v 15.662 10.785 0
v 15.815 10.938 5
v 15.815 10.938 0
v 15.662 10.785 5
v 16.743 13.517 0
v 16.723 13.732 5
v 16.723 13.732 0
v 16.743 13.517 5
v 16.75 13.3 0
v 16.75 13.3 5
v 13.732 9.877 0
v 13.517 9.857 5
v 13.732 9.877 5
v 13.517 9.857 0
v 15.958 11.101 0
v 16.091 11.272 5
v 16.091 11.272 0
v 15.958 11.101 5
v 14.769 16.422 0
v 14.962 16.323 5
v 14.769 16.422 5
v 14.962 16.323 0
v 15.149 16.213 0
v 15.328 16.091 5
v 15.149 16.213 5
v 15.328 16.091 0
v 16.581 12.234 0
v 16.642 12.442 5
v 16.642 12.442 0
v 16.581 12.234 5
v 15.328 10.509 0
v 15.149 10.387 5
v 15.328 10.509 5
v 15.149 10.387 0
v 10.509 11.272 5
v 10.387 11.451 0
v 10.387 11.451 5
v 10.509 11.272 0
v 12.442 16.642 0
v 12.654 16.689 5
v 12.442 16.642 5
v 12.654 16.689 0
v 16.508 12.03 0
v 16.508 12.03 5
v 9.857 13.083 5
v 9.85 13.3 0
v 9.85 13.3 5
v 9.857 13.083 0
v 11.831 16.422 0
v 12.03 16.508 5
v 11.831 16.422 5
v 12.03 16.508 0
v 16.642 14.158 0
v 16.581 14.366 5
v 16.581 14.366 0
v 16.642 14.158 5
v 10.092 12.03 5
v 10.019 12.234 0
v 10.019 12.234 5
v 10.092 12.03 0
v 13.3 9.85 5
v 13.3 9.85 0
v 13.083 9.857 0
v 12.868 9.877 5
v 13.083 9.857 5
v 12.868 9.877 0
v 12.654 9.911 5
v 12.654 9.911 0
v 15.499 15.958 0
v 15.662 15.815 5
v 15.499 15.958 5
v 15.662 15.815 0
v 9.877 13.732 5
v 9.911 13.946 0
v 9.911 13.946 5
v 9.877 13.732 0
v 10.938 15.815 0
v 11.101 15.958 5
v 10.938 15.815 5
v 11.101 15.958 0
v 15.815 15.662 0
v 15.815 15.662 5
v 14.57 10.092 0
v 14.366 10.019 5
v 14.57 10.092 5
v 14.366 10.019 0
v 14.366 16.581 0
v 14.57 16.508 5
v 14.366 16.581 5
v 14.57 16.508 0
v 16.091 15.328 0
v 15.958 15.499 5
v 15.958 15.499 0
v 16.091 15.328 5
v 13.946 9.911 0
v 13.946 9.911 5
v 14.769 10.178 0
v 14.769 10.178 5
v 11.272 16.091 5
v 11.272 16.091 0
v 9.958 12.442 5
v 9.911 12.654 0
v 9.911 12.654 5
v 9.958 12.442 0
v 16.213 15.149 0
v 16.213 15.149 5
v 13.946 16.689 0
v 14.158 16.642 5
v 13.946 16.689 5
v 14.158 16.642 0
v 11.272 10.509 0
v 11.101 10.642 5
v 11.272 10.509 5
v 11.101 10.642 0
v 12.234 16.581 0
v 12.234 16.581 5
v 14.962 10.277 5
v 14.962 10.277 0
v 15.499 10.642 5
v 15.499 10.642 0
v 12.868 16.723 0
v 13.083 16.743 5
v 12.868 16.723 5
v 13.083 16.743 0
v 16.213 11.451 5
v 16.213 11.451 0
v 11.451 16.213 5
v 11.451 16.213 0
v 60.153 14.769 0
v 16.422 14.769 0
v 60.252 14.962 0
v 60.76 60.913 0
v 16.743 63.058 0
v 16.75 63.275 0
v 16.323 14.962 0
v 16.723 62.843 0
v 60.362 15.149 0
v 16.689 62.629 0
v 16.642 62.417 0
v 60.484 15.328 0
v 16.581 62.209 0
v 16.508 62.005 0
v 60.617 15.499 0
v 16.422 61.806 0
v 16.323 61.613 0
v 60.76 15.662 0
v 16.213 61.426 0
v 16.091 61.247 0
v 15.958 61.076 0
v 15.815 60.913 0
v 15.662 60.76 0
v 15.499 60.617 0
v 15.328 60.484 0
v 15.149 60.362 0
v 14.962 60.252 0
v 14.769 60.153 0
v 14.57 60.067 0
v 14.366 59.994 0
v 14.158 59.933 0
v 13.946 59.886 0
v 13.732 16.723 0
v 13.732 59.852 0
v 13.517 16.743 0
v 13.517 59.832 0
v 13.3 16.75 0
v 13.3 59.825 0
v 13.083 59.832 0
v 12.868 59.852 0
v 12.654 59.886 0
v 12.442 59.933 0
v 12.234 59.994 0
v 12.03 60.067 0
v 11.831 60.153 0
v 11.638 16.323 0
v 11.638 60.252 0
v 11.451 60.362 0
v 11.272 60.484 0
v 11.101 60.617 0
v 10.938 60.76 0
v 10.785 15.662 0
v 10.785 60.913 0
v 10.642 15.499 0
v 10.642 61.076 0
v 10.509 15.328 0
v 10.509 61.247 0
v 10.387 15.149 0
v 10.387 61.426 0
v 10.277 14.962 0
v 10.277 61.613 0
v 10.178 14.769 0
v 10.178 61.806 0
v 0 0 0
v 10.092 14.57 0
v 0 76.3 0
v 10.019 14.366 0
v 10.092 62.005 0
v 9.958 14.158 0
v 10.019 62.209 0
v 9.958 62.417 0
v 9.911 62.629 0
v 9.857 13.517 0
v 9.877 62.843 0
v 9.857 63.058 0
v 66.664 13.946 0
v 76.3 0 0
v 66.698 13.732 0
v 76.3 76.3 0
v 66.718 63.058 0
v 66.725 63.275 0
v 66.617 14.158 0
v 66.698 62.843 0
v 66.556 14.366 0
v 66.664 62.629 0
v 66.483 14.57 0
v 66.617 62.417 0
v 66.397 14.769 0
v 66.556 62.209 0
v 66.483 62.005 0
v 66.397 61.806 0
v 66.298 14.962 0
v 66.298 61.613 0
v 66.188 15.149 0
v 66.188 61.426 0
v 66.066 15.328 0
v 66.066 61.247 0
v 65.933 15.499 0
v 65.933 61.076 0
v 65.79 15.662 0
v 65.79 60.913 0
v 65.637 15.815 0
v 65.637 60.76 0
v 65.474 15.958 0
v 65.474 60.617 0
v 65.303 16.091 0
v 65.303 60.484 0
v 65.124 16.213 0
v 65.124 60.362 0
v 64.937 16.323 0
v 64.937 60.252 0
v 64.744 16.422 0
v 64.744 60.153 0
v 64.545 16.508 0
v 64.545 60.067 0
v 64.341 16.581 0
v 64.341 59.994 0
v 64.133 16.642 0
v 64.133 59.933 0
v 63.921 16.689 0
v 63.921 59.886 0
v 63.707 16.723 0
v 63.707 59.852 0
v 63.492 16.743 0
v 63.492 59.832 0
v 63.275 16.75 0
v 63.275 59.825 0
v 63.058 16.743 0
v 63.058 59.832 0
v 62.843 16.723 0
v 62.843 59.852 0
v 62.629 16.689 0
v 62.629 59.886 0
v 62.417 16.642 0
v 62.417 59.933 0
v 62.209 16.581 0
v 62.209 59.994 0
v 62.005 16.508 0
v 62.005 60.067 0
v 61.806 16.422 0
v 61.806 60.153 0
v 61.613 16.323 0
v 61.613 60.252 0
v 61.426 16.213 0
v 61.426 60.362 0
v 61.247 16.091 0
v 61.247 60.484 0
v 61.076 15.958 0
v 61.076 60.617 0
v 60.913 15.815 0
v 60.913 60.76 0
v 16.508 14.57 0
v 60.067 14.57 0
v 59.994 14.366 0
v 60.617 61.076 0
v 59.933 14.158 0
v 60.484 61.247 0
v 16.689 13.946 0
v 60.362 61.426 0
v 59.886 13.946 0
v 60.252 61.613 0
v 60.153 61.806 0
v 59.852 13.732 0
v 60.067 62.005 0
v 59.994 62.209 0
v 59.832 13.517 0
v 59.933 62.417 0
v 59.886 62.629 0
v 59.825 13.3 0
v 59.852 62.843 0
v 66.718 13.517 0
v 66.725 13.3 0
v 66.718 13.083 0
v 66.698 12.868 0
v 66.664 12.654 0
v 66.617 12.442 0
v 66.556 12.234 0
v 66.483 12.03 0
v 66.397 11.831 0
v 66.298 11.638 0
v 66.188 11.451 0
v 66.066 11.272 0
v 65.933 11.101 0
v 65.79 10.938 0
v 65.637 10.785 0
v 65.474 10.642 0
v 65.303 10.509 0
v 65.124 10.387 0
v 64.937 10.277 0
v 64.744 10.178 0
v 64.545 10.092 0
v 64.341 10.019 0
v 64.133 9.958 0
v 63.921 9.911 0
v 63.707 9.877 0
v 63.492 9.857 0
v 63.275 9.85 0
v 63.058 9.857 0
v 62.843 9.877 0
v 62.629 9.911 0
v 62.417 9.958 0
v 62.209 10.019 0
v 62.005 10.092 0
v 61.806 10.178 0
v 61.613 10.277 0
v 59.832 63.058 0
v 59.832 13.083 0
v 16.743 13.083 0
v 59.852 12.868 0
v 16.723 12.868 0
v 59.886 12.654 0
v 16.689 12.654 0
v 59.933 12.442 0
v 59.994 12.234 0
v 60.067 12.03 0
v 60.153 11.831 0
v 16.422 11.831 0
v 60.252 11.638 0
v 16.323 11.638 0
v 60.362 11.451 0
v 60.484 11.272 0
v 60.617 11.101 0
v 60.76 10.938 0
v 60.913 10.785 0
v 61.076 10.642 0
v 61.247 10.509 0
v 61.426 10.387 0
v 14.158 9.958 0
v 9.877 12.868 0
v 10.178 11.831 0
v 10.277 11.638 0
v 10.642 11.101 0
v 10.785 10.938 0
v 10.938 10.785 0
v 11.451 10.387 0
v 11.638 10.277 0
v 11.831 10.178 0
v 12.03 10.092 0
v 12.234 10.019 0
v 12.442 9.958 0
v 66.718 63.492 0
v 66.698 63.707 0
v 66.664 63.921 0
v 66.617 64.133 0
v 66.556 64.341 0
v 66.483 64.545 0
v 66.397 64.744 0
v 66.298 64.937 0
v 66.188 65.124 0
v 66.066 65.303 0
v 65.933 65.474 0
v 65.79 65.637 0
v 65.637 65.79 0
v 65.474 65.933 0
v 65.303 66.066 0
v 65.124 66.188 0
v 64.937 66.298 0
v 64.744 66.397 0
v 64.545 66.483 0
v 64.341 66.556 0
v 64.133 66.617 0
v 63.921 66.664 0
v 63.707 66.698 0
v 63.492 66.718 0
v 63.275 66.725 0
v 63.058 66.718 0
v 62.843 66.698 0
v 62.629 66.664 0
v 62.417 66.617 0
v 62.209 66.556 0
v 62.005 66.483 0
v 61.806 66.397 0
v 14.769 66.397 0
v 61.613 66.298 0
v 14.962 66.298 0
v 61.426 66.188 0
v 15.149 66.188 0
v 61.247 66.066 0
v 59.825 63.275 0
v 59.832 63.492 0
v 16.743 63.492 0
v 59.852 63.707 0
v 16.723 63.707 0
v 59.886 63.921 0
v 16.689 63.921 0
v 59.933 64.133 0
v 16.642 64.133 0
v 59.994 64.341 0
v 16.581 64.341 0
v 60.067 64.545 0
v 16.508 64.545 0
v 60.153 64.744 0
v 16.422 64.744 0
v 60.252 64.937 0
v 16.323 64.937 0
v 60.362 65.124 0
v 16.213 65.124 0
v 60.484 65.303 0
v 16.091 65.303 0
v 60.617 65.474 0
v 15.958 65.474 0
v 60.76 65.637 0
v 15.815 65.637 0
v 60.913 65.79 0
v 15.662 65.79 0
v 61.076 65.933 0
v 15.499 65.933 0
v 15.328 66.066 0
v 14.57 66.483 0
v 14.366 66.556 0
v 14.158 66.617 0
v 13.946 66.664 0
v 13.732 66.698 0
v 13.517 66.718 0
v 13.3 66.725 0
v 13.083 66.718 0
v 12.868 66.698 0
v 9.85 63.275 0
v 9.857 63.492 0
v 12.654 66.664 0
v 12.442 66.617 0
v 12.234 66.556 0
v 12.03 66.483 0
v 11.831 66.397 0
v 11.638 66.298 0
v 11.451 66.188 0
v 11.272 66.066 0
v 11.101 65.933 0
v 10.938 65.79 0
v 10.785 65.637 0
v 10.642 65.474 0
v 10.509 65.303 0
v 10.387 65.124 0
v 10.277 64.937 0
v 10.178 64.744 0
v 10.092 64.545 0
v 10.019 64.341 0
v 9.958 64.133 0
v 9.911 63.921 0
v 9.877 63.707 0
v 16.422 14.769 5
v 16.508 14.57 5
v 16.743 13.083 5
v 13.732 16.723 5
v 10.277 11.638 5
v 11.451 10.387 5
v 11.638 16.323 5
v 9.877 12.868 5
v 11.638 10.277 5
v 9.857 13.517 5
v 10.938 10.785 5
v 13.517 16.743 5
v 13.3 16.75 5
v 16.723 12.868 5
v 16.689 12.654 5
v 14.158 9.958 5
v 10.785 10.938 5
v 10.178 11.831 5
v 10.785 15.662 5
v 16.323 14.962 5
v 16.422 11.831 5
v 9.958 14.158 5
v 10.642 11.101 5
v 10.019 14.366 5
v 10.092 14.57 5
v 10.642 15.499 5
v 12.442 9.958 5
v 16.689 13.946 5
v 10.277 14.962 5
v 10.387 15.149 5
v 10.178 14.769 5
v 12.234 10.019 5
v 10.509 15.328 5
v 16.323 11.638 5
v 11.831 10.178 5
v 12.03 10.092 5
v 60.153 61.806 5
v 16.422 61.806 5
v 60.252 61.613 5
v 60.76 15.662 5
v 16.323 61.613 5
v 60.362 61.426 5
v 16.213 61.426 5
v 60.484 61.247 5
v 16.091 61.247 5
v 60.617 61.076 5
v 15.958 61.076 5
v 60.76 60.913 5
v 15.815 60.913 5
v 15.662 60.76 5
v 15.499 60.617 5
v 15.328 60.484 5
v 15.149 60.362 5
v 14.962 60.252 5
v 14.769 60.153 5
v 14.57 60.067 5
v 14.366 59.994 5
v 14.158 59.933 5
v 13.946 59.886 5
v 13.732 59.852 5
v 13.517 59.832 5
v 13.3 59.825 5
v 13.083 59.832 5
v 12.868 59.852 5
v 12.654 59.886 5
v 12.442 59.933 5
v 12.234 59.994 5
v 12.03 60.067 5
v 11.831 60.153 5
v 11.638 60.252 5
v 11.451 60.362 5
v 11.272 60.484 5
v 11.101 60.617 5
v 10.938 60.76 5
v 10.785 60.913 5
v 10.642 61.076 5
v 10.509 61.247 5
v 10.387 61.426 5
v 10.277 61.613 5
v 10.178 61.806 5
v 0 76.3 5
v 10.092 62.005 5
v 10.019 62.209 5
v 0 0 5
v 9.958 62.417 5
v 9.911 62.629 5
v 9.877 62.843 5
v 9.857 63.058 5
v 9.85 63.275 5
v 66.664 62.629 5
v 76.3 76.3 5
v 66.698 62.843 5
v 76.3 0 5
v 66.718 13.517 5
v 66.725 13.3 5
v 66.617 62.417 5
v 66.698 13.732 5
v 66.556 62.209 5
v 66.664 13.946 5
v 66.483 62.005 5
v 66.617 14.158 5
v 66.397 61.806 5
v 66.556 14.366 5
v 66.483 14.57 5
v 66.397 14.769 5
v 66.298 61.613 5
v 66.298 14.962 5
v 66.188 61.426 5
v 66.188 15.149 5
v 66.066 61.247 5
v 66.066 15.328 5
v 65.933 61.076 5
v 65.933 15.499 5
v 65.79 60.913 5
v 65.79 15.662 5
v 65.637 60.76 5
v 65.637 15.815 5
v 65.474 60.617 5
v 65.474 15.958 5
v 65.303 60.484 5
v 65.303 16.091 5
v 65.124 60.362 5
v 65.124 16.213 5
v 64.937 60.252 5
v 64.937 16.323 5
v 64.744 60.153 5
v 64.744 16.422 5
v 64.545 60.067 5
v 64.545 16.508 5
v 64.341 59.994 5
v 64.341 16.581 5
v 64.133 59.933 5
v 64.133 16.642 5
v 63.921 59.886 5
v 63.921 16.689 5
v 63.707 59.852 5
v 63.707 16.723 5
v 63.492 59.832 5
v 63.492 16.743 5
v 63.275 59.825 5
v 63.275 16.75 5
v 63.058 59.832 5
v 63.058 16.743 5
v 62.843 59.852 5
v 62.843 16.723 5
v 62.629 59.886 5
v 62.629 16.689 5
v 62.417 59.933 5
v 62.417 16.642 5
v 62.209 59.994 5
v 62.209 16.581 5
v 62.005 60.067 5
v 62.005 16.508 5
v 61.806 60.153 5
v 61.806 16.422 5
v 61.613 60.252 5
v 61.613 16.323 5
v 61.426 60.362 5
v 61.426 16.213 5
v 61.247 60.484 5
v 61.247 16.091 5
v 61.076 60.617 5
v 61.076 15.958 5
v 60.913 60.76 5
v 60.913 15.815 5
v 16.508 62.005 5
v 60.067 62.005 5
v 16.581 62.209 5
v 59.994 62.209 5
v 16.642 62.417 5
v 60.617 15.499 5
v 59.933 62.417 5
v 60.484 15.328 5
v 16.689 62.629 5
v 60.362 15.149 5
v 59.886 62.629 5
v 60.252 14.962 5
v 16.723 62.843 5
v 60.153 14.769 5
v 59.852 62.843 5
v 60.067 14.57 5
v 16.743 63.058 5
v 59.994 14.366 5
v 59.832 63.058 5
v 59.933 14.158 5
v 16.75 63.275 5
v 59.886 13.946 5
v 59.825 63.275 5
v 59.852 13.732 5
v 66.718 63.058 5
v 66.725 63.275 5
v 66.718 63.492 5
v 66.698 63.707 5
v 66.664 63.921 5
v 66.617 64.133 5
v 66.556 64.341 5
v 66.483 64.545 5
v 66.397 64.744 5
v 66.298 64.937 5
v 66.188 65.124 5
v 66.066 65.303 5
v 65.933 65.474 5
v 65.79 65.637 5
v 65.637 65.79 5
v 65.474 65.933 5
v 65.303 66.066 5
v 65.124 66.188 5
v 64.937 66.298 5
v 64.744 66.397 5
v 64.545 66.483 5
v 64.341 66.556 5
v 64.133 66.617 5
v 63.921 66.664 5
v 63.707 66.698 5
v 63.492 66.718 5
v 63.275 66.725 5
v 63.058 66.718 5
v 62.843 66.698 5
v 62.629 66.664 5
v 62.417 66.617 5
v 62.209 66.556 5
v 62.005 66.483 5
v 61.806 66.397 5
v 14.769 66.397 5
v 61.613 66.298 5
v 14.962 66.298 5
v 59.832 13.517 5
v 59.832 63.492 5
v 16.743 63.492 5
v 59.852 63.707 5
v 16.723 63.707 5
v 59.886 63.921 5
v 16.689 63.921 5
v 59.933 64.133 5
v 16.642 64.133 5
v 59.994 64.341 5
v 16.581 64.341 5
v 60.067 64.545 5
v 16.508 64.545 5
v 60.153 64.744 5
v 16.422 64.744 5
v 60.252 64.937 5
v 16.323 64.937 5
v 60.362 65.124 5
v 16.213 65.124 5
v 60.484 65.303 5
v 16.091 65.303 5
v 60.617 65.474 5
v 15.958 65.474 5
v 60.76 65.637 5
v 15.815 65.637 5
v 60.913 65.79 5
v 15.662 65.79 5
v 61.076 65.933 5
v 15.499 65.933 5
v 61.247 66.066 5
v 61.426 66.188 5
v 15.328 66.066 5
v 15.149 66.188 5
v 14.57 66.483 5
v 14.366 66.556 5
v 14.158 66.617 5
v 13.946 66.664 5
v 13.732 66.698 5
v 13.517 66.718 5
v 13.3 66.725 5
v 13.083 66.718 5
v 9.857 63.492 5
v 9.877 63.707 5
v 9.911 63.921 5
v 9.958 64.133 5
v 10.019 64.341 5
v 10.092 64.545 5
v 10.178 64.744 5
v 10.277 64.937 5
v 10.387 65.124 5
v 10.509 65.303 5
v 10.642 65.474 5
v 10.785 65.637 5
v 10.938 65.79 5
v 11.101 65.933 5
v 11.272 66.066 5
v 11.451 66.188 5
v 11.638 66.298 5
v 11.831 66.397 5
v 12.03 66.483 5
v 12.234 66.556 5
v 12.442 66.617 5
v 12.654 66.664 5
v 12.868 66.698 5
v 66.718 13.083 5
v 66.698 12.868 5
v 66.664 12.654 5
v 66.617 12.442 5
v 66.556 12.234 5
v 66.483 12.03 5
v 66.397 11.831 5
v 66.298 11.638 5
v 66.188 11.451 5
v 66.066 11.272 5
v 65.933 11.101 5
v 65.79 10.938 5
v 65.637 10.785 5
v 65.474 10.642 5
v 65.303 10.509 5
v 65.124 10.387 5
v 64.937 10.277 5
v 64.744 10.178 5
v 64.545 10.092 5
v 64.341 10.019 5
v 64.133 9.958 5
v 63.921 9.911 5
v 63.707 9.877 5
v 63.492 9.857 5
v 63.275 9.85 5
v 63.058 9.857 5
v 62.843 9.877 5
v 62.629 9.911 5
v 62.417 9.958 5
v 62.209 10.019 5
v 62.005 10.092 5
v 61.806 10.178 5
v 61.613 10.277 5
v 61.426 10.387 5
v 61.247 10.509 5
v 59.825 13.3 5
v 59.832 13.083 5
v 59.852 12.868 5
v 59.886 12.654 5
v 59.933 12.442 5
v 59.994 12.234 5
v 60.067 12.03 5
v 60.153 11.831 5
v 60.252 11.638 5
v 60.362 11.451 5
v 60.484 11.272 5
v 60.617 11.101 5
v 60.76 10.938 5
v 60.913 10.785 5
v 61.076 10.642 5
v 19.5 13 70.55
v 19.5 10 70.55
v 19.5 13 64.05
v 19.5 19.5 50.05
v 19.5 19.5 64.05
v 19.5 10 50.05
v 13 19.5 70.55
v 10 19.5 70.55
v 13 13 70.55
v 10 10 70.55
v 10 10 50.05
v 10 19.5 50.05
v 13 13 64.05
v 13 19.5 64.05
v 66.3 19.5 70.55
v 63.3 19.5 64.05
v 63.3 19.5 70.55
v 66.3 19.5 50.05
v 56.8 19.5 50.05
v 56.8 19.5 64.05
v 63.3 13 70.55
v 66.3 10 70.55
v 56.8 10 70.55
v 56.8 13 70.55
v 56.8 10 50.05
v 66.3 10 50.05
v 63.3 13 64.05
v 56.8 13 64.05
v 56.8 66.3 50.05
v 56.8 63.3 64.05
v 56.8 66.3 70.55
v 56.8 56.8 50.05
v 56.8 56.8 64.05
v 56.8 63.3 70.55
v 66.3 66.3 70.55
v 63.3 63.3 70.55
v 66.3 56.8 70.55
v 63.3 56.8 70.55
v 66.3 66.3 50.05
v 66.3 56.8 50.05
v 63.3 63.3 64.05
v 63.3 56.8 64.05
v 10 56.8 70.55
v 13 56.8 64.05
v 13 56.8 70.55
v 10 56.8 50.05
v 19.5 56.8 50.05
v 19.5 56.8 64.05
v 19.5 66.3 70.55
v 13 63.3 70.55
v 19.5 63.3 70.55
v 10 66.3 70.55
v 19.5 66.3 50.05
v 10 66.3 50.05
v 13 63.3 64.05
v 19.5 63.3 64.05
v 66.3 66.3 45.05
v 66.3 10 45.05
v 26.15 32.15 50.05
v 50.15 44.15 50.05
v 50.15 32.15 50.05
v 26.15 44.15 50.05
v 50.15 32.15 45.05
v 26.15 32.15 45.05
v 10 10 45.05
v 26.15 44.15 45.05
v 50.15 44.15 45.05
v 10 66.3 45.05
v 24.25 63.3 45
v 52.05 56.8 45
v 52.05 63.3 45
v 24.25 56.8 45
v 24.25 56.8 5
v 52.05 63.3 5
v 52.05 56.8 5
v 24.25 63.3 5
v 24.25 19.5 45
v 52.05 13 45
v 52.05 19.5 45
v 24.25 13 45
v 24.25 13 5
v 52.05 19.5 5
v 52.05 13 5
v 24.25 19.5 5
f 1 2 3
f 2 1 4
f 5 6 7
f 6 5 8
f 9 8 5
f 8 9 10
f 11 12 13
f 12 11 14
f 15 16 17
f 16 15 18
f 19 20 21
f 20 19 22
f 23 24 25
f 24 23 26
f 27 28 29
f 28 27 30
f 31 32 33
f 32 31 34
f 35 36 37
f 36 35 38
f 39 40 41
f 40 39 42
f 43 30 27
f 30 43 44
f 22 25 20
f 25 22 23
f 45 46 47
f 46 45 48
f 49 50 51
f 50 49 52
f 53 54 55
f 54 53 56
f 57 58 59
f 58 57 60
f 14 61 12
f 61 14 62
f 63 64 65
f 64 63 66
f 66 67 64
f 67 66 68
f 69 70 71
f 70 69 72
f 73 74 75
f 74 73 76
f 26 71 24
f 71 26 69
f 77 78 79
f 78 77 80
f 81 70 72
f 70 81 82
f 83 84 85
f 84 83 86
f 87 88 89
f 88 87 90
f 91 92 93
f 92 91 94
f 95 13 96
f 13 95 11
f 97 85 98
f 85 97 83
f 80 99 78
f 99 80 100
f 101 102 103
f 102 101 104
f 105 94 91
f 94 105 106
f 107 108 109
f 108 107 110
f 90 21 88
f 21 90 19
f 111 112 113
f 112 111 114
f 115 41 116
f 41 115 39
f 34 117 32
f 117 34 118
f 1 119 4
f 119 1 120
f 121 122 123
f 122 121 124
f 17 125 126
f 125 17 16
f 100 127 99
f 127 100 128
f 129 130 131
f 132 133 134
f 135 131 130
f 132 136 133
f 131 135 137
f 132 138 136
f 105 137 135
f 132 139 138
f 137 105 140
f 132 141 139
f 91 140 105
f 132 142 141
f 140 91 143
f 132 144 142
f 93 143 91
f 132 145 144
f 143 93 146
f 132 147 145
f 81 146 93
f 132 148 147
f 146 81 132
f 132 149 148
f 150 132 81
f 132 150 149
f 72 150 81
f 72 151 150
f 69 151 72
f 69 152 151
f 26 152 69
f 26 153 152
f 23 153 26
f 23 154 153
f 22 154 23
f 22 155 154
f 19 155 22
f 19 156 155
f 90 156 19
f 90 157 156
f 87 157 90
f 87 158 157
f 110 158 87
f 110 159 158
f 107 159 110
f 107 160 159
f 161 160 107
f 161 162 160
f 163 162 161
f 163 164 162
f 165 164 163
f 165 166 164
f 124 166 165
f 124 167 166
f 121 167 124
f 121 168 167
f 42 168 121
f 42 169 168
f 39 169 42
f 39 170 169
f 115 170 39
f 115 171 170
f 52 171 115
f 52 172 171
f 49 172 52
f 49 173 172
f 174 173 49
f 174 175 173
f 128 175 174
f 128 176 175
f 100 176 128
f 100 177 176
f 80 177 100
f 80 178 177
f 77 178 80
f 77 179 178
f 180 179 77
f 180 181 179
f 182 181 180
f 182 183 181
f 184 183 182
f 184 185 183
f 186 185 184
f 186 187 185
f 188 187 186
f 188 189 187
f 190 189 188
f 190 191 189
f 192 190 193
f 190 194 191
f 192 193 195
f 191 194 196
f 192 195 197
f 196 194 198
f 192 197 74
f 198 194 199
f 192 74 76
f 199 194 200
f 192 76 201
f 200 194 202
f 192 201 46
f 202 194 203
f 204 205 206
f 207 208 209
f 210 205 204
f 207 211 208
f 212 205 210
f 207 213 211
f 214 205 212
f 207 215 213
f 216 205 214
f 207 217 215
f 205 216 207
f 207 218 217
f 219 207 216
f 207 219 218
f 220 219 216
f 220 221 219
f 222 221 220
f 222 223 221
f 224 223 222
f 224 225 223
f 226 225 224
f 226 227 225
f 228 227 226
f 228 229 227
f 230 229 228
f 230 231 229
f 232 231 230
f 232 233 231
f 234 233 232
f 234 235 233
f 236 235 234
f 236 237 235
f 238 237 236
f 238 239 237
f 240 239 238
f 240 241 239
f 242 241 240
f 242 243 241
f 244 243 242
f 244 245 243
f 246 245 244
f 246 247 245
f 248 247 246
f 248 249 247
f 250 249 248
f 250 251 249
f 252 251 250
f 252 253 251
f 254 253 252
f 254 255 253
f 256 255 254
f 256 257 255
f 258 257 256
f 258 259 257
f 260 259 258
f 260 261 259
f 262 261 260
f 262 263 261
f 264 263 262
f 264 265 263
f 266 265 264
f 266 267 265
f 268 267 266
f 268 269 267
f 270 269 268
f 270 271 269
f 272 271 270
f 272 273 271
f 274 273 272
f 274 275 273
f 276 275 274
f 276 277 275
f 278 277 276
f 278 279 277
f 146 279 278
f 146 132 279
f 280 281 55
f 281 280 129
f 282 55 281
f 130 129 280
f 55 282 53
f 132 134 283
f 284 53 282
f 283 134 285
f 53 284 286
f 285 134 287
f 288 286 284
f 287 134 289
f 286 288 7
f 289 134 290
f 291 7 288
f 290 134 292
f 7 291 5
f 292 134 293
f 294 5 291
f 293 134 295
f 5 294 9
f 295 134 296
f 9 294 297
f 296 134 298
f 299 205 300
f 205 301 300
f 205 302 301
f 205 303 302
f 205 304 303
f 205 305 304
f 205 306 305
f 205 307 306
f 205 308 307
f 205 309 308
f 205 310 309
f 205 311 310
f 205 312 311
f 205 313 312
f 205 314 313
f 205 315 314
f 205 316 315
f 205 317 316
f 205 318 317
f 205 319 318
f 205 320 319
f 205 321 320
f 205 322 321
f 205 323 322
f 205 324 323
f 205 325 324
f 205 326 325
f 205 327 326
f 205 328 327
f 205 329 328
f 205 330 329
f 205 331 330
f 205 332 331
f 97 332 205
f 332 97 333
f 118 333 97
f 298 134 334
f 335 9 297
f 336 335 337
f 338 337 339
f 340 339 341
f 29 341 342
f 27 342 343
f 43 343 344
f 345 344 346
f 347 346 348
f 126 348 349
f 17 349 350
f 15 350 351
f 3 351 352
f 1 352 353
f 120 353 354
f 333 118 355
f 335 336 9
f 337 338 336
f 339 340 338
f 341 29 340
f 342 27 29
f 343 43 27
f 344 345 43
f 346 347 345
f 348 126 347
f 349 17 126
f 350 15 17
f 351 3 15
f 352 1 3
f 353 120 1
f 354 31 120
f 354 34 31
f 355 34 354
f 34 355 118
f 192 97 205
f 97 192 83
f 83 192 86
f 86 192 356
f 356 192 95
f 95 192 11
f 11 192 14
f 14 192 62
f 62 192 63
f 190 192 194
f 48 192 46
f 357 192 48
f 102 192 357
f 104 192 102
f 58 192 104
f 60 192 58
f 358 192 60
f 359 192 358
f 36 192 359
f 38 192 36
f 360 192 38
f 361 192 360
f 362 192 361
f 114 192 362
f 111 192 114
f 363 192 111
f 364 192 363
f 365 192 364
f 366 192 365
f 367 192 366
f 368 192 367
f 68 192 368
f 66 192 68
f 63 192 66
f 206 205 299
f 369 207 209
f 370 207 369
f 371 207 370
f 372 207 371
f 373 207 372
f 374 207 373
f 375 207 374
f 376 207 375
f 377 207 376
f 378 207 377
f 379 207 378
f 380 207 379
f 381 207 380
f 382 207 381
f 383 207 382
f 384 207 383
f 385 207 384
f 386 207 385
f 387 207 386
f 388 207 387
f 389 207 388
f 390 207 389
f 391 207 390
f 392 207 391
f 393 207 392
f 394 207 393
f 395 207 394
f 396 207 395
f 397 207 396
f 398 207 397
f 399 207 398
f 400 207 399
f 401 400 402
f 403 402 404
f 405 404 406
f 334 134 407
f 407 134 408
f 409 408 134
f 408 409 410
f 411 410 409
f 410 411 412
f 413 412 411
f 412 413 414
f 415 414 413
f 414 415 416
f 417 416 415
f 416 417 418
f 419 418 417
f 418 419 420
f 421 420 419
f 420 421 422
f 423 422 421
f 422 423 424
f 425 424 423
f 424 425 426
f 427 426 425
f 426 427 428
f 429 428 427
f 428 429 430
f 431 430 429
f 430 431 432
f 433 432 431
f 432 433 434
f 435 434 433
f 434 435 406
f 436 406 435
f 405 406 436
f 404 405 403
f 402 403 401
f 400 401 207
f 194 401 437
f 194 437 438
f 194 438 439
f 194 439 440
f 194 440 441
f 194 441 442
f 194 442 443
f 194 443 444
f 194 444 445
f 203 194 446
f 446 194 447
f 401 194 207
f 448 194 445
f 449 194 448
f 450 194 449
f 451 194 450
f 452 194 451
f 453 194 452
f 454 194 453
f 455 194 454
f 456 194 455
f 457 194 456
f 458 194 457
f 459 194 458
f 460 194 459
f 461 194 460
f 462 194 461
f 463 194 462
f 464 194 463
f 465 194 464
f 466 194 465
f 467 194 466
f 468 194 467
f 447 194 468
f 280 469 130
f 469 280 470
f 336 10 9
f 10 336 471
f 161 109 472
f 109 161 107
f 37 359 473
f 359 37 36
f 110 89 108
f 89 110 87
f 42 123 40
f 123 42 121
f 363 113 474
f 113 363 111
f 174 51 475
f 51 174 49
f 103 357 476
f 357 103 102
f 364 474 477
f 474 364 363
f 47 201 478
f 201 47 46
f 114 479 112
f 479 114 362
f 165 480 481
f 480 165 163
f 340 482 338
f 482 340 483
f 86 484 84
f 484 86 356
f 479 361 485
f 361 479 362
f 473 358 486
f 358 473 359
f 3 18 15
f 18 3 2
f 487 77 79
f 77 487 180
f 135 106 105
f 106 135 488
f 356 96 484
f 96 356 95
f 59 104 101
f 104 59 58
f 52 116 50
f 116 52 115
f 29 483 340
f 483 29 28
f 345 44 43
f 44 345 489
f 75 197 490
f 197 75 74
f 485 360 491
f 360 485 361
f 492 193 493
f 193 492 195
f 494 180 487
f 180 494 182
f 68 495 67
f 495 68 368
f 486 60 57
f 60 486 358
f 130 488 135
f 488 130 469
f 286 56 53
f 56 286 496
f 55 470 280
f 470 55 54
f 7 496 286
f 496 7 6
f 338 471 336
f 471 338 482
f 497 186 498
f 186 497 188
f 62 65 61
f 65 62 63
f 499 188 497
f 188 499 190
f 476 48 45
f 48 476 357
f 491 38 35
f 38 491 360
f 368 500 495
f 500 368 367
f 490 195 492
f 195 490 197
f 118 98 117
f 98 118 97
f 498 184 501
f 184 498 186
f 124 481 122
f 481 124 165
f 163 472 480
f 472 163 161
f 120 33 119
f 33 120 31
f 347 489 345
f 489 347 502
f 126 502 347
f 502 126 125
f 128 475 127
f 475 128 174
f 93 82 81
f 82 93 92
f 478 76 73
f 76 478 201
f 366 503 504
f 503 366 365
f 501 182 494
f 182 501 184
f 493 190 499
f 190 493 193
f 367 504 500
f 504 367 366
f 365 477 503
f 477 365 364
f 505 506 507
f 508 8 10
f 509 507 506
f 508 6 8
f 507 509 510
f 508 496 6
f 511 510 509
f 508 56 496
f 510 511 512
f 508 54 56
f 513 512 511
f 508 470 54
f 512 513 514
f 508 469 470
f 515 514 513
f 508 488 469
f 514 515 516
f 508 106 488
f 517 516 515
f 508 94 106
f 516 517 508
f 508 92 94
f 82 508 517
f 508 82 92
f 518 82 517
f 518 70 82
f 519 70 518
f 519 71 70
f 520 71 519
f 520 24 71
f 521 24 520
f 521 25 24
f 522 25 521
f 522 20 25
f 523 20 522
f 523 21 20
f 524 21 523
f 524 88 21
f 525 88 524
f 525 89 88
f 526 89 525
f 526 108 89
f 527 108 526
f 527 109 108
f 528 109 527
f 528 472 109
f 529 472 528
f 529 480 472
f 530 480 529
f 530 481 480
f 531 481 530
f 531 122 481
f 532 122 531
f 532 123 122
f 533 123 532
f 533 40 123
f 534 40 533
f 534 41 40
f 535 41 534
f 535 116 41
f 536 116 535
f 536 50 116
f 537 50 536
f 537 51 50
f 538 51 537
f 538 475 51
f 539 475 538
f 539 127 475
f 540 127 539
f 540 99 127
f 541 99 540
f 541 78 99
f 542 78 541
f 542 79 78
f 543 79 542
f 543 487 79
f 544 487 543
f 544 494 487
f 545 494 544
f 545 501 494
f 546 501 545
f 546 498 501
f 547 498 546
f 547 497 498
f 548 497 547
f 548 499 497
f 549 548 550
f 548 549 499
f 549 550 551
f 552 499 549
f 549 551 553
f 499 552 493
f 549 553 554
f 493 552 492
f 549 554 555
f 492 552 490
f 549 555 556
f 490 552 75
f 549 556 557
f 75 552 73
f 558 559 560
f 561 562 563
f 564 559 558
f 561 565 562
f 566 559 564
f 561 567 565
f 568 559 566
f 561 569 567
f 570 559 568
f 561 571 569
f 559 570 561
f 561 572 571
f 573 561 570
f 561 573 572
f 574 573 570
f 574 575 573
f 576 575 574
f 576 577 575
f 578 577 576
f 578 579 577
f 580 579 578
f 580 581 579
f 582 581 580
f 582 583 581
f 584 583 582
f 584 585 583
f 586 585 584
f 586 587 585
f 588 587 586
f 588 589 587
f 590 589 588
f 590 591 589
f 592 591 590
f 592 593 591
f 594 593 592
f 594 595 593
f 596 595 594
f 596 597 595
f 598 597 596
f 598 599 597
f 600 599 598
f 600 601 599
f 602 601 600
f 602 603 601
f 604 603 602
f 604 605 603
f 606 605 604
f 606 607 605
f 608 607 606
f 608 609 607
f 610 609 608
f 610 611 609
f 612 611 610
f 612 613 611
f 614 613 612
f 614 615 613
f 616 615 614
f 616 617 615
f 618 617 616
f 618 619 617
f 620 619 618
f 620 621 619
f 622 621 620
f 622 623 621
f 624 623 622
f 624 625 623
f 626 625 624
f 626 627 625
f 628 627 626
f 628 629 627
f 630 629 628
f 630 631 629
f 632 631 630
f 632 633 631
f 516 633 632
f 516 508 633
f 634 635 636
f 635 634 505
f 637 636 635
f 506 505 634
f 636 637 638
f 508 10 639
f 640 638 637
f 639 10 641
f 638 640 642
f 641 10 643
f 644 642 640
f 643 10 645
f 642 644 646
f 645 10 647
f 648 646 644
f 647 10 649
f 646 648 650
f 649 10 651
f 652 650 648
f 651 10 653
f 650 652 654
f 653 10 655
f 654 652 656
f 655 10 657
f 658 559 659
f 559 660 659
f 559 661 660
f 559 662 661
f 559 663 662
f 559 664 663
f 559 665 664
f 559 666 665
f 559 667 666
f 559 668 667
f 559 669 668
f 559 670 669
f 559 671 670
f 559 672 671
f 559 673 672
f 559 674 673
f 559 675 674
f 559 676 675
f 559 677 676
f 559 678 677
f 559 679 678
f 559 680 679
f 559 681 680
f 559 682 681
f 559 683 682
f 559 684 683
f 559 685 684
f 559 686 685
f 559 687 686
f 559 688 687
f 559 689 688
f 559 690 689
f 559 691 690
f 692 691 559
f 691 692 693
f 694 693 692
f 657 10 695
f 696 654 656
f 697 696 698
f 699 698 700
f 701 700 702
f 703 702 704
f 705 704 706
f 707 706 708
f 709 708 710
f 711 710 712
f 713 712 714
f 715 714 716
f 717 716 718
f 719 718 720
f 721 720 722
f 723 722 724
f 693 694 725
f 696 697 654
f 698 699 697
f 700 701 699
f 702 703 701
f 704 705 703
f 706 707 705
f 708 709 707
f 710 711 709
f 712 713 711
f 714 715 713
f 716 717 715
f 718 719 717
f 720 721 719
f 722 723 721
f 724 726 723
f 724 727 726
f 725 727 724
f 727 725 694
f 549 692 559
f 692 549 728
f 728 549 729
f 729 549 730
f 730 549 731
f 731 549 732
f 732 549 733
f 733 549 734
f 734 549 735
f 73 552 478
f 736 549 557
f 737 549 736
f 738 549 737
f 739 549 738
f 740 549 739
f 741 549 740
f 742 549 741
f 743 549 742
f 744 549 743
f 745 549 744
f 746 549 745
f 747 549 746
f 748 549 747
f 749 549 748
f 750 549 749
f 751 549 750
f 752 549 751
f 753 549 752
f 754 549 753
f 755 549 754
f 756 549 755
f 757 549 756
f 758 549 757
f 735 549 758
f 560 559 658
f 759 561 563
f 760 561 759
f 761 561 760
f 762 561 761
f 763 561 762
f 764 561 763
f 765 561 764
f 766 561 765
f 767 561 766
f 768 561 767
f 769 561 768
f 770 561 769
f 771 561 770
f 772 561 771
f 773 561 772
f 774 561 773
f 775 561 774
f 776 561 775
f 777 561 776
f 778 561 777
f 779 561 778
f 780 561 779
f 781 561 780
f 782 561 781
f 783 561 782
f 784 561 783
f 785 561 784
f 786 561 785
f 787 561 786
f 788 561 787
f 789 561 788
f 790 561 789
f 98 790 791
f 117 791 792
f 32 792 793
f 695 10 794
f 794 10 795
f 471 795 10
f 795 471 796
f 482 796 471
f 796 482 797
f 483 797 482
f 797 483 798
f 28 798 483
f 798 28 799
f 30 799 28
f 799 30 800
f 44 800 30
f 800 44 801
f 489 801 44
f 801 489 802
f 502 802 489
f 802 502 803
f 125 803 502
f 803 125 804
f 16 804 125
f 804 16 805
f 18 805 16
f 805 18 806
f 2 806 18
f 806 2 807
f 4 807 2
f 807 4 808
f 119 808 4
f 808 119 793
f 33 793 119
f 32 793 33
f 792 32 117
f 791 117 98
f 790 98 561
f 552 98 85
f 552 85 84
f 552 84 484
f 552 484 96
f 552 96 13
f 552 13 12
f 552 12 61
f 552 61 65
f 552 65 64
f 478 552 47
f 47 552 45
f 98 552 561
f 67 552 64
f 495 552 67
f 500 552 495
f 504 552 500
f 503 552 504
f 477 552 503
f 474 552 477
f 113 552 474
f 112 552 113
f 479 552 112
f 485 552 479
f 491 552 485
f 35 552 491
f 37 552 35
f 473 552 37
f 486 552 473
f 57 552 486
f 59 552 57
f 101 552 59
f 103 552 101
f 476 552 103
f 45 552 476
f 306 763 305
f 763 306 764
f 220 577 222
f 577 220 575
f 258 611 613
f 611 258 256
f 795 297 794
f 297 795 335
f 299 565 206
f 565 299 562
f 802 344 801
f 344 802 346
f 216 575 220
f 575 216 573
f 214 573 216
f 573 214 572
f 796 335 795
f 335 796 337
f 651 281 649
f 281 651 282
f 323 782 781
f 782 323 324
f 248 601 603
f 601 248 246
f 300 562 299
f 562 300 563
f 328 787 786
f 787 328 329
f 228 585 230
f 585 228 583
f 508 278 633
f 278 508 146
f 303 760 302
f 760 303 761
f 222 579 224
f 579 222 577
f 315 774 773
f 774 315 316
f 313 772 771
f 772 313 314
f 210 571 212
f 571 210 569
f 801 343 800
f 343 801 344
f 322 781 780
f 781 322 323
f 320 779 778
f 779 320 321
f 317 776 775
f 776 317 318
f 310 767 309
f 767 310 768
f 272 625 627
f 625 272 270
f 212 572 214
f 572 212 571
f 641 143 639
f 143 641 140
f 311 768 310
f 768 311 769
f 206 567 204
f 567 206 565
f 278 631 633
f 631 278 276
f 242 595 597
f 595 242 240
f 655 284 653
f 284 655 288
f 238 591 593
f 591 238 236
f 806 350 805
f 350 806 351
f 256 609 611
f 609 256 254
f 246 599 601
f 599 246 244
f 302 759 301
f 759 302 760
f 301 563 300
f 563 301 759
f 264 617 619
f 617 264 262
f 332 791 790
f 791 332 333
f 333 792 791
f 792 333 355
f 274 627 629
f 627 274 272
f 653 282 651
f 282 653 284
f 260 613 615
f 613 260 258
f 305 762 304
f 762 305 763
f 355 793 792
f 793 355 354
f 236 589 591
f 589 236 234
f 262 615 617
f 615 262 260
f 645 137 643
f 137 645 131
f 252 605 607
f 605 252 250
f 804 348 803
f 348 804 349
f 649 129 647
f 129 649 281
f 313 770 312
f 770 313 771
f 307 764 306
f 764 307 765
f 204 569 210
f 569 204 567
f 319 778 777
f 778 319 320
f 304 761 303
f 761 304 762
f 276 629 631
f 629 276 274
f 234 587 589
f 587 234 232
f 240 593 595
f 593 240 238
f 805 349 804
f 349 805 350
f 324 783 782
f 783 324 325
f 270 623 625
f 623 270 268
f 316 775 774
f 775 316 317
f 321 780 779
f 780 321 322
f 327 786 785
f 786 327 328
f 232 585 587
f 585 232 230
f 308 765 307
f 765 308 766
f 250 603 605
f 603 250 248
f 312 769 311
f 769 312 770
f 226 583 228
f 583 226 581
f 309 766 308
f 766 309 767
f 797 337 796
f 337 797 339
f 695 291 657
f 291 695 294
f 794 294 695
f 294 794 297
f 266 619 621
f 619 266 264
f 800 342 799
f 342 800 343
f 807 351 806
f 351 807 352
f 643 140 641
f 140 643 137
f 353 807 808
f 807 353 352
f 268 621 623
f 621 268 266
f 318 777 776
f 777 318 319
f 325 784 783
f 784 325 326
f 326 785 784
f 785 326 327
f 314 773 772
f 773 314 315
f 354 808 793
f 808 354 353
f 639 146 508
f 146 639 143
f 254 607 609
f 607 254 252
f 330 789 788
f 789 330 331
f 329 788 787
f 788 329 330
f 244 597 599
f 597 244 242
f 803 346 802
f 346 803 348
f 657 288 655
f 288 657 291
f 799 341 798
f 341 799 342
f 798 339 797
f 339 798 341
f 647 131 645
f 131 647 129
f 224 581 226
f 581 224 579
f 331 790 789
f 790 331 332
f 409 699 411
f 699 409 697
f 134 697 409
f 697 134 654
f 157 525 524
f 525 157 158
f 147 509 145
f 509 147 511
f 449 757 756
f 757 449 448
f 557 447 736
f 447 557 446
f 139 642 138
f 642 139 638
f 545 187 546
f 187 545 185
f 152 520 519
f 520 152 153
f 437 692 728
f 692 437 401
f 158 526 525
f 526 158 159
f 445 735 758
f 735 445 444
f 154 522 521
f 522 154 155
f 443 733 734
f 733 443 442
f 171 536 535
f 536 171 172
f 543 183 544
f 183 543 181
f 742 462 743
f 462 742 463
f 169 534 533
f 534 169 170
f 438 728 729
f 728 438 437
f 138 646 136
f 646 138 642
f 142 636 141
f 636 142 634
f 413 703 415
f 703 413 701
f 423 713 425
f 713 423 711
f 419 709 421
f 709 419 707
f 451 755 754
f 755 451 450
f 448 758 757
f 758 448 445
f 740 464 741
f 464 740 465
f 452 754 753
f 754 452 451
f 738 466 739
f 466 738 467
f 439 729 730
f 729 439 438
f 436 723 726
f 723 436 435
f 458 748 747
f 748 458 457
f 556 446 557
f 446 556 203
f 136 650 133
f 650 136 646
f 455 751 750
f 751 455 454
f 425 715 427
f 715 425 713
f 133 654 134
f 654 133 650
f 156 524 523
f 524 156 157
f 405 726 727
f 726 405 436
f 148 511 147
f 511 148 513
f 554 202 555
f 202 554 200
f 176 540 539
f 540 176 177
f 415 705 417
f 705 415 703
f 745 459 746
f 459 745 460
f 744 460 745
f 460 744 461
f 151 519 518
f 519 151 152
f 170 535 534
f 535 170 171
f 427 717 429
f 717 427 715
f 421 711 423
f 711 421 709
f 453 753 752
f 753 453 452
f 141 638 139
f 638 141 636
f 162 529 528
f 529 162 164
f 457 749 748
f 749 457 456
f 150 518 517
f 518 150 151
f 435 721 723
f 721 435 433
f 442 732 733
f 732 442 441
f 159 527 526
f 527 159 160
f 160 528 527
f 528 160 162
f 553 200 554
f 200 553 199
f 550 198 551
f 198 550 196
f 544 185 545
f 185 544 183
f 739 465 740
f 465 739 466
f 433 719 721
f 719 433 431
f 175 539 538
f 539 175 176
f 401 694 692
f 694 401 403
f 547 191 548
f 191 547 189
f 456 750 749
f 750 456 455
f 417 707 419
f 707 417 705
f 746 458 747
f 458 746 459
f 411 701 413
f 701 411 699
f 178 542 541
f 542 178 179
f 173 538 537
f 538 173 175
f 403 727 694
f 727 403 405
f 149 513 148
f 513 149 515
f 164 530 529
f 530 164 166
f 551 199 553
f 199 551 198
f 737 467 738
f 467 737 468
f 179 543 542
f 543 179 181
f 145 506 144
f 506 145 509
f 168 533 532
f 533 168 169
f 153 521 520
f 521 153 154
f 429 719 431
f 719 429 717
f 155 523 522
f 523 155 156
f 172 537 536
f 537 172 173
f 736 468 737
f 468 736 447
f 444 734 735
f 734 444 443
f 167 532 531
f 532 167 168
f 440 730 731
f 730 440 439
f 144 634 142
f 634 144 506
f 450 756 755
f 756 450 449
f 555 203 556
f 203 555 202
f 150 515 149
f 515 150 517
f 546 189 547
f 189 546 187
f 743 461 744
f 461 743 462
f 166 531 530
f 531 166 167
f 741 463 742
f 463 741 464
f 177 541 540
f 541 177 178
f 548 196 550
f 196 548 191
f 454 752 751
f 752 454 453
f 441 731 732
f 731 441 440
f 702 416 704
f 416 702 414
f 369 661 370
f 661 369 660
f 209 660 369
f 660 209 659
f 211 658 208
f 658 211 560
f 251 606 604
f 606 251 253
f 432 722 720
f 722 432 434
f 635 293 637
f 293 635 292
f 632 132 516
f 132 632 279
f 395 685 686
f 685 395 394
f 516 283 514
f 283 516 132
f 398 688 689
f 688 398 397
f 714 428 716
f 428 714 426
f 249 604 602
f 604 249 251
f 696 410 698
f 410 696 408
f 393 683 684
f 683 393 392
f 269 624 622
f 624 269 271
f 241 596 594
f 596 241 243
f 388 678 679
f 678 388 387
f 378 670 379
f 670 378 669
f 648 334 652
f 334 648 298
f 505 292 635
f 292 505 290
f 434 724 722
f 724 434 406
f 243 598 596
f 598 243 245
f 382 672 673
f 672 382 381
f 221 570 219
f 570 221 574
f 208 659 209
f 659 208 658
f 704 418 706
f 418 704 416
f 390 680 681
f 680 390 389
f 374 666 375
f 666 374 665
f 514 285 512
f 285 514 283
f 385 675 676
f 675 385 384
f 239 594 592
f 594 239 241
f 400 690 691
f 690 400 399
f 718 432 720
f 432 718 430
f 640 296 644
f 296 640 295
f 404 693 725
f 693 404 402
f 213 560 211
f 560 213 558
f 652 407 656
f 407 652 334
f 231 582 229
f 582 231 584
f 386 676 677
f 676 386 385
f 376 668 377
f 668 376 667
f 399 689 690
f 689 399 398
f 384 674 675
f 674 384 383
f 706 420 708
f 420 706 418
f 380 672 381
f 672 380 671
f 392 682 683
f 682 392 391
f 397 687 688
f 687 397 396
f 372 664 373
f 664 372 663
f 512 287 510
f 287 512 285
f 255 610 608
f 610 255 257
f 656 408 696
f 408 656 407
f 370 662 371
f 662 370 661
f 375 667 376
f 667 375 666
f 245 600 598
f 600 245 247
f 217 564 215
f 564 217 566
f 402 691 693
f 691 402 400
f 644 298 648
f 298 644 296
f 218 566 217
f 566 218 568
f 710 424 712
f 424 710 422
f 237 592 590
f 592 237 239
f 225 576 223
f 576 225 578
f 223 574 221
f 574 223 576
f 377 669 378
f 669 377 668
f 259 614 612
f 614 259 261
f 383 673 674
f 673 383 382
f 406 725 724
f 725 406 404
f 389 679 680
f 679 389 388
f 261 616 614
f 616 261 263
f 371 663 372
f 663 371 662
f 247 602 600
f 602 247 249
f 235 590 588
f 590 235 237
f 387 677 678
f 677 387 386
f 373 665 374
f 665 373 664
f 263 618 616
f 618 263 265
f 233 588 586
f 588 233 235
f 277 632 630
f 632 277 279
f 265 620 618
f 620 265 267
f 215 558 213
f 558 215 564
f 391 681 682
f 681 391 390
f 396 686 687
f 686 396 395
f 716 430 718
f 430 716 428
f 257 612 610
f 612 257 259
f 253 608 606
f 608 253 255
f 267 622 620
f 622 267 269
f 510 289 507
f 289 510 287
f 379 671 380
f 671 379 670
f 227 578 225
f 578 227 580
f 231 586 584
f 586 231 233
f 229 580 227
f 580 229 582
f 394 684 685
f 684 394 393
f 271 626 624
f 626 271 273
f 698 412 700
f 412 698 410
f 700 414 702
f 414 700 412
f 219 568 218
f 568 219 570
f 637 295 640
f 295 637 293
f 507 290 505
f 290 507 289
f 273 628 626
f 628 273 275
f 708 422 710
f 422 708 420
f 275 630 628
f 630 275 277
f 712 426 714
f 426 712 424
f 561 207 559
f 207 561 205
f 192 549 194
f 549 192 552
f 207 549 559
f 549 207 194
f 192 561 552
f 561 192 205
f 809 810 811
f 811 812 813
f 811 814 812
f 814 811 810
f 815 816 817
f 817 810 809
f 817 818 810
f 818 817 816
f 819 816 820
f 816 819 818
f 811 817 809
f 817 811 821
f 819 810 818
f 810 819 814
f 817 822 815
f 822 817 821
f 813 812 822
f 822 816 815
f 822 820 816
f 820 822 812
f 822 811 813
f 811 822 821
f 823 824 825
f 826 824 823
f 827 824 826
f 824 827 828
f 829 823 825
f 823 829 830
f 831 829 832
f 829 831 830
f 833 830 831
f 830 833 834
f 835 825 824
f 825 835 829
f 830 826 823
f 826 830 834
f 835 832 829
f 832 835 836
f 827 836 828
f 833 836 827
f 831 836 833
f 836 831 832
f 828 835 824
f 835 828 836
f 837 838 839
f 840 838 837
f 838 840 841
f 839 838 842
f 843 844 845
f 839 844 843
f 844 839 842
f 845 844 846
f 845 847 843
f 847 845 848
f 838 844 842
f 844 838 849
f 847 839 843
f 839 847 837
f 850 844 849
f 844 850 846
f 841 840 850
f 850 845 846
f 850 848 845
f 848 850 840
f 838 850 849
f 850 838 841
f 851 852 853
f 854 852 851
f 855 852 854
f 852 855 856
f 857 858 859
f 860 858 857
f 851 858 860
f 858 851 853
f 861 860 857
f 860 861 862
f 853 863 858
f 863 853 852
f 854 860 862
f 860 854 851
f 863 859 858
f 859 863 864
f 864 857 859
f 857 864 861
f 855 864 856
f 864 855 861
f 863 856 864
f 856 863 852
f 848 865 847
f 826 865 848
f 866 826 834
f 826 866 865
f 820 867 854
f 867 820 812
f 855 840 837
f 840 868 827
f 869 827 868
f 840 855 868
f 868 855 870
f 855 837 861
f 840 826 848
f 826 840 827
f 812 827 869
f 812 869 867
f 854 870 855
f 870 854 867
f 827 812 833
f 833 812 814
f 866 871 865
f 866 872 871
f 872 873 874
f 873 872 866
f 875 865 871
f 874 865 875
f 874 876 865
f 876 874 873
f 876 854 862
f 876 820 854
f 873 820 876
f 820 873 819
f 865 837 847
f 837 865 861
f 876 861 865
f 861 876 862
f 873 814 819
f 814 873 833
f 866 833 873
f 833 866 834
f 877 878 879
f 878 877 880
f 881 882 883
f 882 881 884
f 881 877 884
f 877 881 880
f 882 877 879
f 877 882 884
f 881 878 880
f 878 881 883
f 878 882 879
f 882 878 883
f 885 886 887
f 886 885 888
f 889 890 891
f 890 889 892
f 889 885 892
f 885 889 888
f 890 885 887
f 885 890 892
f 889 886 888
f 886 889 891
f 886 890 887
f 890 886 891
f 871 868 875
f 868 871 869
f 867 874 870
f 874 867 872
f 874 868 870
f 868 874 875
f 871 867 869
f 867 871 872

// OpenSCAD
// file: module_Cubo.scad
module Cubo(){
    difference(){
        cube([50,50,50]);
        #translate([2.5,2.5,2.5])cube(45);
        #translate([25,25,0])cylinder(h=2.5,r1=15,r2=15);
        #translate([25,25,47.5])cylinder(h=2.5,r1=15,r2=15);
        rotate([90,0,0])translate([25,25,-2.5])cylinder(h=2.5,r1=15,r2=15);
        rotate([90,0,0])translate([25,25,-50])cylinder(h=2.5,r1=15,r2=15);
        rotate([0,90,0])translate([-25,25,])cylinder(h=2.5,r1=15,r2=15);
        rotate([0,90,0])translate([-25,25,47.5])cylinder(h=2.5,r1=15,r2=15);
    }
}
// main file
// ----- ----- Declaração de Variáveis ----- ----- //

res=100;

folga1=0.15;
folga2=0.05;

cubo=50;

ds_splh=(44+40)/2;
d_splh=ds_splh/12; //3.5

diff_splh_x=17;
diff_splh_y=10;
diff_splh_z=19.25;

raio_bobina=12.5;

xeuss_x=76.3;
xeuss_y=76.3;
xeuss_z=5;

xt=14;
yt=89.8-xeuss_y;
zt=xeuss_z;

rx=6.6/2;
tr_x=13.65;
tr_cil=10+rx;
cc = (56.5+43.45)/2;

Xdelize=xeuss_x;
Ydelize=25;
Zdelize=11.7-xeuss_z;

alt_poly=15-Zdelize-xeuss_z;
esp_poly=2.5;
apt_poly=7.4;
poly5=5;

x_encaixe=xeuss_x-2*poly5;
y_encaixe=20;
z_encaixe=3;

splh_x=20;
splh_y=10;
splh_z=60.35-z_encaixe;
r_splh=1;

alt_bob=11;

esp_pottop=3;
long_pottop=6.5;
alt_quad=5;
trans_aux2=-diff_splh_z/2-cubo/2+xeuss_z+Zdelize+splh_z-splh_x/2+diff_splh_x/2+z_encaixe-folga1-esp_pottop-alt_bob-alt_quad;
desce_enough=trans_aux2-xeuss_z-folga2;
desce_enough2=40-desce_enough;
gordura=1;

// ----- ----- Declaração de Bibliotecas ----- ----- //
use <funcoes_GFCx.scad>
use <module_Cubo.scad>
use <module_MontagemDoCubo.scad>

//não apague, mas também não descomente
//translate([tr_x,xeuss_y,0])cube([xt,yt,zt]); 

// ----- ----- Declaração de Funções ----- ----- //
module pottop(param,param2,folga,alt){
    translate([-param-folga,-param-folga,-param-folga]){
        cube([param+param2,param,param+param2]);
        cube([param,param+param2,param+param2]);
        translate([0,0,-alt])cube([param+param2,param+param2,param+alt]);
    }
}


// ----- ----- Base Atuador Manual Linear ----- ----- //
difference(){
    translate([0,0,0])cube([xeuss_x,xeuss_y,xeuss_z]);
    translate([tr_cil,tr_cil,0]){
        #translate([0,0,0])cylinder(xeuss_z,rx+folga1,rx+folga1,$fn=res);
        #translate([cc,0,0])cylinder(xeuss_z,rx+folga1,rx+folga1,$fn=res);
        #translate([0,cc,0])cylinder(xeuss_z,rx+folga1,rx+folga1,$fn=res);
        #translate([cc,cc,0])cylinder(xeuss_z,rx+folga1,rx+folga1,$fn=res);
    }
}

// ----- ----- Suporte de Amostras ----- ----- //

difference(){
    translate([xeuss_x/2-cubo/2,xeuss_x/2-cubo/2,0])
    translate([0,0,splh_z-(splh_x/2-diff_splh_x/2)-diff_splh_z+z_encaixe])
    translate([0,0,xeuss_z+Zdelize])
    translate([0,0,diff_splh_z/2-cubo/2]){
        //MontagemDoCubo();
        //Cubo();
        translate([0,0,desce_enough2]){
            pottop(esp_pottop,long_pottop,folga1,alt_bob);
            translate([50,0,0])rotate([0,0,90])pottop(esp_pottop,long_pottop,folga1,alt_bob);
            translate([50,50,0])rotate([0,0,2*90])pottop(esp_pottop,long_pottop,folga1,alt_bob);
            translate([0,50,0])rotate([0,0,3*90])pottop(esp_pottop,long_pottop,folga1,alt_bob);

            translate([-folga1-esp_pottop,-folga1-esp_pottop,-folga1-esp_pottop-alt_bob-alt_quad])
            cube([cubo+2*esp_pottop+2*folga1,cubo+2*esp_pottop+2*folga1,alt_quad]);
        }
        
        translate([0,0,-desce_enough-folga2]){
            translate([(long_pottop+esp_pottop)*1.5,esp_pottop,0])
            translate([-folga1-esp_pottop,-folga1-esp_pottop,-folga1-esp_pottop-alt_bob-alt_quad])
            cube([long_pottop*4,long_pottop,desce_enough+desce_enough2]);
            translate([-(long_pottop+esp_pottop)*1.5,esp_pottop,0])
            translate([cubo+2*esp_pottop+2*folga1-long_pottop,0,0])
            translate([-folga1-esp_pottop,-folga1-esp_pottop,-folga1-esp_pottop-alt_bob-alt_quad])
            cube([long_pottop,long_pottop,desce_enough+desce_enough2]);
            translate([0,cubo+2*esp_pottop+2*folga1-long_pottop-esp_pottop,0]){
                translate([(long_pottop+esp_pottop)*1.5,0,0])
                translate([-folga1-esp_pottop,-folga1-esp_pottop,-folga1-esp_pottop-alt_bob-alt_quad])
                cube([long_pottop*4,long_pottop,desce_enough+desce_enough2]);
                translate([-(long_pottop+esp_pottop)*1.5,0,0])
                translate([cubo+2*esp_pottop+2*folga1-long_pottop,0,0])
                translate([-folga1-esp_pottop,-folga1-esp_pottop,-folga1-esp_pottop-alt_bob-alt_quad])
                cube([long_pottop,long_pottop,desce_enough+desce_enough2]);
            }
        }
    }
    #translate([poly5,xeuss_y/2-Ydelize/2+esp_poly,xeuss_z+Zdelize+desce_enough2])
    #translate([x_encaixe/2-(splh_x*1.2)/2,y_encaixe/2-(splh_y*1.2)/2,z_encaixe])
    #cube([splh_x*1.2,splh_y*1.2,splh_z*0.2]);
}
